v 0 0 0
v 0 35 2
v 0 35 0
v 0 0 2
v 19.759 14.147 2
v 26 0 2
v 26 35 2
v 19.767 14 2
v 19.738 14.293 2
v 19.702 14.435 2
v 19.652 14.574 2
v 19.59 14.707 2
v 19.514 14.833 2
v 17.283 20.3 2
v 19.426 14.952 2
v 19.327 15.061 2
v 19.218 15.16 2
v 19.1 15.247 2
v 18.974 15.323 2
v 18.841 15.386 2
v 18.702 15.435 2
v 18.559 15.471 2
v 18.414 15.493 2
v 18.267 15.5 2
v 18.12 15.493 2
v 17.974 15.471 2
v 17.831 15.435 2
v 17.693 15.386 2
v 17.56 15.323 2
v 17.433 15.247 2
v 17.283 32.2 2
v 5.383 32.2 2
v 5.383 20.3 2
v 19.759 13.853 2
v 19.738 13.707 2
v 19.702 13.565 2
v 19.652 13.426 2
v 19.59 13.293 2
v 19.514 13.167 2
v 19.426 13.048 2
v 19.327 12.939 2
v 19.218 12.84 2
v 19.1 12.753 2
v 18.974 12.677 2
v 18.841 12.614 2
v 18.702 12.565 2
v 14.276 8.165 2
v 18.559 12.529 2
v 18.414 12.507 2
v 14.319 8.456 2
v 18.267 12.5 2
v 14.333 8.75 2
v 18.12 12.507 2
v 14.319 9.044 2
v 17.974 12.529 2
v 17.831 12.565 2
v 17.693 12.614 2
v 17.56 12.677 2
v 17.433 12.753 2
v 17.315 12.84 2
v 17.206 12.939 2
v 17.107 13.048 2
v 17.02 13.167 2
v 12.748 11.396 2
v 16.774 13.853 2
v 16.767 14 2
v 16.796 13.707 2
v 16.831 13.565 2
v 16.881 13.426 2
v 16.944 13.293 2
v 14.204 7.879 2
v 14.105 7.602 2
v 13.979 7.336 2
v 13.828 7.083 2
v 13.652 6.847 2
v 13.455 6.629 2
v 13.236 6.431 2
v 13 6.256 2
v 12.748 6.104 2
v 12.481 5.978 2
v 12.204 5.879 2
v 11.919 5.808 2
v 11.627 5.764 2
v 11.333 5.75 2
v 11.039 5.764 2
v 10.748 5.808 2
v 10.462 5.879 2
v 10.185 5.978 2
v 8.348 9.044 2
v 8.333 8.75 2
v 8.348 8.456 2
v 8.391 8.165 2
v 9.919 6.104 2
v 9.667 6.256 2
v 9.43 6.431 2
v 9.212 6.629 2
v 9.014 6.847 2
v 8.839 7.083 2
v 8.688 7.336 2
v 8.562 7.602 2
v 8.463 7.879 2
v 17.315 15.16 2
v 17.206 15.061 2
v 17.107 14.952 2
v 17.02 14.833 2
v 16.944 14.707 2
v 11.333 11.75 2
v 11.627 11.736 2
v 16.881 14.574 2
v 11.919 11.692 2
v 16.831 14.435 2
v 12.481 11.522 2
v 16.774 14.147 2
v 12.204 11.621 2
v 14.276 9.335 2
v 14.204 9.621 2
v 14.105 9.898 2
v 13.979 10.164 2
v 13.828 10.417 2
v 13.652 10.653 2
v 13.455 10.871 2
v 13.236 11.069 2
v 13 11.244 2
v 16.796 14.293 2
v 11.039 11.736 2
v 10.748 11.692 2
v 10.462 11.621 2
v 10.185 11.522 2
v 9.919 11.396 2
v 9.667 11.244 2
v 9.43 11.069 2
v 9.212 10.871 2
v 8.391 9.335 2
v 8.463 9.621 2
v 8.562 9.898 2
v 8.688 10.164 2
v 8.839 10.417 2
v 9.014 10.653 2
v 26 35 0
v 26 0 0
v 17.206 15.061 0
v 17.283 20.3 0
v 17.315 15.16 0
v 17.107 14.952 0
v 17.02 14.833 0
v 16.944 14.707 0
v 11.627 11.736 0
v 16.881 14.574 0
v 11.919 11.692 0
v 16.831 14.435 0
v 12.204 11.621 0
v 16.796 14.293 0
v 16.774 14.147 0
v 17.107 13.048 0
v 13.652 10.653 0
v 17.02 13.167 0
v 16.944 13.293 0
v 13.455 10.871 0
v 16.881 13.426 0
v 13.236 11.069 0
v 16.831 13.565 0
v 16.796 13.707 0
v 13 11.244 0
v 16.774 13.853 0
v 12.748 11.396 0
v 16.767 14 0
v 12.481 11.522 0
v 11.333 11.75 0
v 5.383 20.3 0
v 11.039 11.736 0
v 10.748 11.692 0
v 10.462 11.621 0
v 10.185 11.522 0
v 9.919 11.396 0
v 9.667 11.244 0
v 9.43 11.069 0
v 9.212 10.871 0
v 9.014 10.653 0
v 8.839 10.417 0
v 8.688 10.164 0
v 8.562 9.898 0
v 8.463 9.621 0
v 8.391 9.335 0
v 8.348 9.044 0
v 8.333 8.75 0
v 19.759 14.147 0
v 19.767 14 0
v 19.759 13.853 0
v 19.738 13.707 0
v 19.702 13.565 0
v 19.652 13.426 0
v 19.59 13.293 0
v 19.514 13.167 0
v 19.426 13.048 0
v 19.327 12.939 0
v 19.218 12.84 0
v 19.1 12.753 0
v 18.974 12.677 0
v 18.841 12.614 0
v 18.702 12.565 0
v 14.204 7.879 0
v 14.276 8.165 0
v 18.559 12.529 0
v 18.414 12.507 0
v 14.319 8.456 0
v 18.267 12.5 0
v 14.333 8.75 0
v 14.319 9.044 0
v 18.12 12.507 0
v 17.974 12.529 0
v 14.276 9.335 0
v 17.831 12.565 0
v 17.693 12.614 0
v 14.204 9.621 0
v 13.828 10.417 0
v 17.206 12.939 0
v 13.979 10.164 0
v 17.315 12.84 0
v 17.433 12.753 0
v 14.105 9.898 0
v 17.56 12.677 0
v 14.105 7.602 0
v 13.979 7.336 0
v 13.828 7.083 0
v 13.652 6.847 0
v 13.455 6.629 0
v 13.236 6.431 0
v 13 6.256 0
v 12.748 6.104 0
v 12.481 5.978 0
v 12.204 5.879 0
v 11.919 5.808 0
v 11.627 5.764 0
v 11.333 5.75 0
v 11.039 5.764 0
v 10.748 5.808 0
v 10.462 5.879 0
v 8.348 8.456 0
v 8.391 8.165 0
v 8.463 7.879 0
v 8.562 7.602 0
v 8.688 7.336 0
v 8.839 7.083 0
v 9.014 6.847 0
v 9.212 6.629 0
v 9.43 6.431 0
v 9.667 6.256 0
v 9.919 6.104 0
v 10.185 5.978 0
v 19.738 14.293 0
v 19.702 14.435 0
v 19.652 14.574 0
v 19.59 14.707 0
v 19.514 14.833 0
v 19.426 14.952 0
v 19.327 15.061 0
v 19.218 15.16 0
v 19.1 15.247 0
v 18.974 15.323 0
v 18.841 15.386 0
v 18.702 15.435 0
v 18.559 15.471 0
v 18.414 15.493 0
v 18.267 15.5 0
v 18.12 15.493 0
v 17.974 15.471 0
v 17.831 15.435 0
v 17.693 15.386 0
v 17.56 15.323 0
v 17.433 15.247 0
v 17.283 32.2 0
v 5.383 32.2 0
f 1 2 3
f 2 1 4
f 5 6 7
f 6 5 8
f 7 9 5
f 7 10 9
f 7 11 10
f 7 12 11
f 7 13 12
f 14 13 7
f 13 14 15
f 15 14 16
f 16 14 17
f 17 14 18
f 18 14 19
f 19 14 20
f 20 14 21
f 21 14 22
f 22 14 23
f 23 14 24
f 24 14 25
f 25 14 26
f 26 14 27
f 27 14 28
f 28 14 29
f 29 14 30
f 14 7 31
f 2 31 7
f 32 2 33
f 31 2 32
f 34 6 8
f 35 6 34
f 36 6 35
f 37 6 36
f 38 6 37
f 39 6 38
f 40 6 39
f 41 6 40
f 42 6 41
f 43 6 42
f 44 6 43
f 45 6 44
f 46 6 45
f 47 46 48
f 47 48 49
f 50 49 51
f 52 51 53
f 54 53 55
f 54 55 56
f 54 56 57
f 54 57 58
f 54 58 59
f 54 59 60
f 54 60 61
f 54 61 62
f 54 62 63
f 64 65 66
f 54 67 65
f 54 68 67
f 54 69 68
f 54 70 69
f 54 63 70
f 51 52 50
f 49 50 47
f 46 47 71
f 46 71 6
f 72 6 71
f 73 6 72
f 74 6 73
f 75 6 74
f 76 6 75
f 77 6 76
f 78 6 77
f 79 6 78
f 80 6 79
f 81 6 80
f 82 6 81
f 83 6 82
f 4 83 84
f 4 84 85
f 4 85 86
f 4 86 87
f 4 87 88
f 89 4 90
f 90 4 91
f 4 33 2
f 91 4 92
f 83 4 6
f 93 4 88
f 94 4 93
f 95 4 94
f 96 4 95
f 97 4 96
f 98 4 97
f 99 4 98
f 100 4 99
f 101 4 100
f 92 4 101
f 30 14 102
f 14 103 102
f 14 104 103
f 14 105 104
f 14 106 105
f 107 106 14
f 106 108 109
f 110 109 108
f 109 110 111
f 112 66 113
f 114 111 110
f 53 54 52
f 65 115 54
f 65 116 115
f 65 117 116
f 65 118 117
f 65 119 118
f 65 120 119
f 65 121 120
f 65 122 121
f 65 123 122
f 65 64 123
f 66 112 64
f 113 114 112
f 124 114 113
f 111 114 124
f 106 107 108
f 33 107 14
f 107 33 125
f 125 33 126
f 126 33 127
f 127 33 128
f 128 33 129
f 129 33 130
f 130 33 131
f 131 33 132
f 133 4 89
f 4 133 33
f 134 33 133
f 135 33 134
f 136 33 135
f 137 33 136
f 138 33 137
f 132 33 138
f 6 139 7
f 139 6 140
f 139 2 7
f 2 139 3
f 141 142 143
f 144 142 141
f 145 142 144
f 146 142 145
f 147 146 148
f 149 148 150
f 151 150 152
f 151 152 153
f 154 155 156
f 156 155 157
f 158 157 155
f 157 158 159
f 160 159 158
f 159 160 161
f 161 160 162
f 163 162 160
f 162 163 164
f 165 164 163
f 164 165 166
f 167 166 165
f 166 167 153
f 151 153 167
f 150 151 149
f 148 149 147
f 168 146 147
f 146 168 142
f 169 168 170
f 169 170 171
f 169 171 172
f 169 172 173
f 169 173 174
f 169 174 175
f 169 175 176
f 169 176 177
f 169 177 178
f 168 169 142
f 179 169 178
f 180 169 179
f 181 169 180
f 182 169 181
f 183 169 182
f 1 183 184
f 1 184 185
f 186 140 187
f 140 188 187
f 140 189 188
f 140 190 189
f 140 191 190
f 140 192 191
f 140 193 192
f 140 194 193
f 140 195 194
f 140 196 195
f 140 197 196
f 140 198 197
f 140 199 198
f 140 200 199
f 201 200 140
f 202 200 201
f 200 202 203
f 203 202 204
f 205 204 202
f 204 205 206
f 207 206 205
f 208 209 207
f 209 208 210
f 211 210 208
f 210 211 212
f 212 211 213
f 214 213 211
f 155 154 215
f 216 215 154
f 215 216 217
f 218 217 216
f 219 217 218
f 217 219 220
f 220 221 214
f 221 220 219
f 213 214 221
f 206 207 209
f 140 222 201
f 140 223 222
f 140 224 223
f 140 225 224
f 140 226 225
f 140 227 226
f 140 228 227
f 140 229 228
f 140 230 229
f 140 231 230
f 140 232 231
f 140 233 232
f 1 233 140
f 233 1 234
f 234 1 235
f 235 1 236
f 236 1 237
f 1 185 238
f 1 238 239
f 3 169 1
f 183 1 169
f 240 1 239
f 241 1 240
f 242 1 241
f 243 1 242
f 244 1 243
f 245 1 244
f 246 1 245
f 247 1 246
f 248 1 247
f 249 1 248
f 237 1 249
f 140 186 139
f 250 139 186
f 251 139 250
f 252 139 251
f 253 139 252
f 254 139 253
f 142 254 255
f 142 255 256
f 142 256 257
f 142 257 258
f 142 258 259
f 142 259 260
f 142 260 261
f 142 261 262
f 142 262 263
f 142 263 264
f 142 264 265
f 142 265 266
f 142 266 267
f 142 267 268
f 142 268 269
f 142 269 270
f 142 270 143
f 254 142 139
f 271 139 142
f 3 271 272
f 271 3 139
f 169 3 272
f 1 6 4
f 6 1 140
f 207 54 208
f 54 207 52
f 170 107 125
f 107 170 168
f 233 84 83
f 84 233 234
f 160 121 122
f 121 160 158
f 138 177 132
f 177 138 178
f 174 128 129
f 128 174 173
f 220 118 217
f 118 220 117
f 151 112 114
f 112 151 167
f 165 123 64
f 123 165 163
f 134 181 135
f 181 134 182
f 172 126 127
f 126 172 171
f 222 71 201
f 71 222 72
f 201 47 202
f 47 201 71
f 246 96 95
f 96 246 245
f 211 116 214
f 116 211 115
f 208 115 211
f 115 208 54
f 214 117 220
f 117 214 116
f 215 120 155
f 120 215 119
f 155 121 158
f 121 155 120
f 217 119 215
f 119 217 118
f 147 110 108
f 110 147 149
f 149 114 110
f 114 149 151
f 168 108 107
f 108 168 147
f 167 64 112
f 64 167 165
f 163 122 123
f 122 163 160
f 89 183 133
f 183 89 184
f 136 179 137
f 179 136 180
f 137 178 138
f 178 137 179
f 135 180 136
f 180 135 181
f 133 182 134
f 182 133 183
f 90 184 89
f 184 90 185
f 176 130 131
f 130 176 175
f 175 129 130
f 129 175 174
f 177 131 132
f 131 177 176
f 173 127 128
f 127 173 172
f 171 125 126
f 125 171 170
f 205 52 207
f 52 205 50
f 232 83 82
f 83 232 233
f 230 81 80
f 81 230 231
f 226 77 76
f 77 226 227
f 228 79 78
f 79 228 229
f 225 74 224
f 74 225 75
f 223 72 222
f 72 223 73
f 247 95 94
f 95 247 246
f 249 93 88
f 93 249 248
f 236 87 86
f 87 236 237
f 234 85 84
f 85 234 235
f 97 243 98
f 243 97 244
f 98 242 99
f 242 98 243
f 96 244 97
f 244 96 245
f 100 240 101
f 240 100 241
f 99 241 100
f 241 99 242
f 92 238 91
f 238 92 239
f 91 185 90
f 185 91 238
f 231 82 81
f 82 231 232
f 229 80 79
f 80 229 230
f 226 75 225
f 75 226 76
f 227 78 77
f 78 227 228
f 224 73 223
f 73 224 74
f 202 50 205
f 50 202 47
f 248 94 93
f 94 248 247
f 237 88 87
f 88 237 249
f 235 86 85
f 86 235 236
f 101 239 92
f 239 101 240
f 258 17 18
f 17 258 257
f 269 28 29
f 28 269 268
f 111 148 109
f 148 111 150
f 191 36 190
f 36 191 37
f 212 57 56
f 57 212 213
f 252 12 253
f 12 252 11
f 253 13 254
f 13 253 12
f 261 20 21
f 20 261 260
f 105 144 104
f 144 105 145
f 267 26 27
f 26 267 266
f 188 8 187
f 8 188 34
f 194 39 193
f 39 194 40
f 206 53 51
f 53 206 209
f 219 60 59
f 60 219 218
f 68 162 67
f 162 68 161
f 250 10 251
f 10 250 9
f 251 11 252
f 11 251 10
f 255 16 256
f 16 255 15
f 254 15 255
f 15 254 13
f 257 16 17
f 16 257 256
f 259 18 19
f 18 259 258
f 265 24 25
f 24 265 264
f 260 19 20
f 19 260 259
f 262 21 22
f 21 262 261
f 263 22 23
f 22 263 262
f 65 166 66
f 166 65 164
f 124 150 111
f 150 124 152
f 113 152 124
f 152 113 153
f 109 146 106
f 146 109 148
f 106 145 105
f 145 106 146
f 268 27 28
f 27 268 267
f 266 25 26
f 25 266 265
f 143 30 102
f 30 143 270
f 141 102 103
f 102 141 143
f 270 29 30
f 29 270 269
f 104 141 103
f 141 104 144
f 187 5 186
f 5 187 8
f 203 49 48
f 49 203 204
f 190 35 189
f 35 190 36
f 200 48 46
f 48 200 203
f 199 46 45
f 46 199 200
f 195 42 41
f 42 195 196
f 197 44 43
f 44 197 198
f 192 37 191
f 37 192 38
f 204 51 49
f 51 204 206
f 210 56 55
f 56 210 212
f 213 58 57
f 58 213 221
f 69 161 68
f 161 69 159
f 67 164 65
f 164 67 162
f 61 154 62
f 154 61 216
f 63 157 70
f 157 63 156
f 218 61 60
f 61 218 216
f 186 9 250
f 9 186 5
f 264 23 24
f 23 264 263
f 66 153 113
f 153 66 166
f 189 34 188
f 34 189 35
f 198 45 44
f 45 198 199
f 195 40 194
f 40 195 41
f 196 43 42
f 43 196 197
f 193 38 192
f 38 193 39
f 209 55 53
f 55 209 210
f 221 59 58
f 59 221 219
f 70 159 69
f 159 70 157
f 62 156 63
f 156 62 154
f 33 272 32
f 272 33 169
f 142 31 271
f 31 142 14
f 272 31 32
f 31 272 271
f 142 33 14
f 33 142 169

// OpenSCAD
// file: _Common/CutOuts/ComponentHoles.scad
module HoleForSquarePushButton(height=40)
{
    cube([12.7, 10.88, height], center=true);
}

// This is **probably** [this](https://dx.com/p/3-pin-slide-switch-diy-parts-red-10-piece-pack-118187)
module HoleForSmallRectangularSlideSwitch(height=40)
{
    cube([6.66, 12.65, height], center=true);
}

module HoleForSmallerRectangularSlideSwitch(height=40)
{
    cube([5.7, 12.24, height], center=true);
}

module HoleForVerySmallRectangularSlideSwitchWithScrewHoles(height=40)
{
    cube([5.7, 10.55, height], center=true);
}

module HoleForPotentiometer(height=40, fn=64)
{
    cylinder(h=height, r=6.77/2, center=true, $fn=fn);
}

module HoleForCylinderToggleButton(height=23, fn=64)
{
    cylinder(h=height, r=11.5/2, center=true, $fn=fn);
}

// Should rename to rocker switch - Like this one http://littlebirdelectronics.com/products/rocker-switch-spst-round
module HoleForRoundBigRedToggleSwitch(height=40, fn=64)
{
    cylinder(h=height, r=20.5/2, center=true, $fn=fn);
}

// Slide Potentiometer - Like this one http://littlebirdelectronics.com/products/slide-potentiometer-10k
module HoleForSlidePotentiometer(height=40)
{
    cube([1.5, 67.2, height], center=true);
}

module HoleForSmallSilverMissileSwitch(height=40, fn=64)
{
    cylinder(h=height, r=6/2, center=true, $fn=fn);
}

module HoleFor5mmDiffusedLED(height=40, fn=64)
{
    cylinder(h=height, r=5/2, center=true, $fn=fn);
}

module HoleFor3mmLED(height=40, fn=64)
{
    cylinder(h=height, r=3/2, center=true, $fn=fn);
}

module HoleForPlugable2PinScrewTerminal(height=40)
{
    cube([7, 8.1, height], center=true);
}

module HoleForPlugable10PinOrangeTerminal(height=40)
{
    cube([18.78, 10.47, height], center=true);
}

module HoleForUSBTypeAFemale(height=40)
{
    cube([13.24, 5.8, height], center=true);
}

module HoleForSmallDXVoltMeter(height=40, fn=64)
{
    screwDistance = 26.5 / 2;

    cube([22.62, 14.08, height], center=true);
    translate([-screwDistance, 0, 0]) cylinder(height, 1, 1, center=true, $fn=fn);
    translate([ screwDistance, 0, 0]) cylinder(height, 1, 1, center=true, $fn=fn);
}

module HoleForBananaPlug(height=40, fn=64)
{
    cylinder(h=height, r=7.2/2, center=true, $fn=fn);
}

module HoleFor12VLightButton(height=40, fn=64)
{
    cylinder(h=height, r=16/2, center=true, $fn=fn);
}

// http://www.digikey.com.au/product-detail/en/1899155/277-6689-ND/2525269
module HoleFor4PinPanelMountScrewTerm(height=40, fn=64)
{
    numPos = 4;
    b = 2.38 + (numPos * 5.08);
    c = b + 7.22;

    cube([b, 10.4, height], center=true);
    translate([-c/2, 0, 0]) cylinder(h=height, r=3.2/2, center=true, $fn=fn);
    translate([ c/2, 0, 0]) cylinder(h=height, r=3.2/2, center=true, $fn=fn);
}
// main file
use <_Common/CutOuts/ComponentHoles.scad>

$fn = 64;

WIDTH = 70;
LENGTH = 130;
THICKNESS = 2;

module HoleForSquareRedButton(height=40)
{
    cube([11.9, 11.9, height], center=true);
}

module Cover()
{
    yScaling = LENGTH / 7.5;
    xScaling = WIDTH / 4;

    difference()
    {
        cube([LENGTH, WIDTH, THICKNESS]);

        translate([1 * yScaling, 1 * xScaling, 0]) HoleForSmallSilverMissileSwitch();
        translate([1 * yScaling, 2 * xScaling, 0]) HoleForSmallSilverMissileSwitch();
        translate([1 * yScaling, 3 * xScaling, 0]) HoleForSmallSilverMissileSwitch();

        translate([1.4 * yScaling, 1.3 * xScaling, 0]) HoleFor3mmLED();
        translate([1.4 * yScaling, 2.3 * xScaling, 0]) HoleFor3mmLED();
        translate([1.4 * yScaling, 3.3 * xScaling, 0]) HoleFor3mmLED();

        translate([2 * yScaling, 1 * xScaling, 0]) HoleFor3mmLED();
        translate([2 * yScaling, 2 * xScaling, 0]) HoleFor3mmLED();
        translate([2 * yScaling, 3 * xScaling, 0]) HoleFor3mmLED();

        for (yIdx = [3 : 5])
        {
            translate([yIdx * yScaling, 1 * xScaling, 0]) HoleForSquareRedButton();
            translate([yIdx * yScaling, 2 * xScaling, 0]) HoleForSquareRedButton();
            translate([yIdx * yScaling, 3 * xScaling, 0]) HoleForSquareRedButton();
        }
    }
}

module TestPrint()
{
    yScaling = LENGTH / 7.5;
    xScaling = WIDTH / 4;

    difference()
    {
        cube([yScaling * 1.5, xScaling * 2, THICKNESS]);

        translate([-6 + 1   * yScaling, 0.5 * xScaling, 0]) HoleForSmallSilverMissileSwitch();
        translate([-6 + 1.4 * yScaling, 0.8 * xScaling, 0]) HoleFor3mmLED();
        translate([-6 + 1   * yScaling, 1.5 * xScaling, 0]) HoleForSquareRedButton();
    }
}

//Cover();

TestPrint();
